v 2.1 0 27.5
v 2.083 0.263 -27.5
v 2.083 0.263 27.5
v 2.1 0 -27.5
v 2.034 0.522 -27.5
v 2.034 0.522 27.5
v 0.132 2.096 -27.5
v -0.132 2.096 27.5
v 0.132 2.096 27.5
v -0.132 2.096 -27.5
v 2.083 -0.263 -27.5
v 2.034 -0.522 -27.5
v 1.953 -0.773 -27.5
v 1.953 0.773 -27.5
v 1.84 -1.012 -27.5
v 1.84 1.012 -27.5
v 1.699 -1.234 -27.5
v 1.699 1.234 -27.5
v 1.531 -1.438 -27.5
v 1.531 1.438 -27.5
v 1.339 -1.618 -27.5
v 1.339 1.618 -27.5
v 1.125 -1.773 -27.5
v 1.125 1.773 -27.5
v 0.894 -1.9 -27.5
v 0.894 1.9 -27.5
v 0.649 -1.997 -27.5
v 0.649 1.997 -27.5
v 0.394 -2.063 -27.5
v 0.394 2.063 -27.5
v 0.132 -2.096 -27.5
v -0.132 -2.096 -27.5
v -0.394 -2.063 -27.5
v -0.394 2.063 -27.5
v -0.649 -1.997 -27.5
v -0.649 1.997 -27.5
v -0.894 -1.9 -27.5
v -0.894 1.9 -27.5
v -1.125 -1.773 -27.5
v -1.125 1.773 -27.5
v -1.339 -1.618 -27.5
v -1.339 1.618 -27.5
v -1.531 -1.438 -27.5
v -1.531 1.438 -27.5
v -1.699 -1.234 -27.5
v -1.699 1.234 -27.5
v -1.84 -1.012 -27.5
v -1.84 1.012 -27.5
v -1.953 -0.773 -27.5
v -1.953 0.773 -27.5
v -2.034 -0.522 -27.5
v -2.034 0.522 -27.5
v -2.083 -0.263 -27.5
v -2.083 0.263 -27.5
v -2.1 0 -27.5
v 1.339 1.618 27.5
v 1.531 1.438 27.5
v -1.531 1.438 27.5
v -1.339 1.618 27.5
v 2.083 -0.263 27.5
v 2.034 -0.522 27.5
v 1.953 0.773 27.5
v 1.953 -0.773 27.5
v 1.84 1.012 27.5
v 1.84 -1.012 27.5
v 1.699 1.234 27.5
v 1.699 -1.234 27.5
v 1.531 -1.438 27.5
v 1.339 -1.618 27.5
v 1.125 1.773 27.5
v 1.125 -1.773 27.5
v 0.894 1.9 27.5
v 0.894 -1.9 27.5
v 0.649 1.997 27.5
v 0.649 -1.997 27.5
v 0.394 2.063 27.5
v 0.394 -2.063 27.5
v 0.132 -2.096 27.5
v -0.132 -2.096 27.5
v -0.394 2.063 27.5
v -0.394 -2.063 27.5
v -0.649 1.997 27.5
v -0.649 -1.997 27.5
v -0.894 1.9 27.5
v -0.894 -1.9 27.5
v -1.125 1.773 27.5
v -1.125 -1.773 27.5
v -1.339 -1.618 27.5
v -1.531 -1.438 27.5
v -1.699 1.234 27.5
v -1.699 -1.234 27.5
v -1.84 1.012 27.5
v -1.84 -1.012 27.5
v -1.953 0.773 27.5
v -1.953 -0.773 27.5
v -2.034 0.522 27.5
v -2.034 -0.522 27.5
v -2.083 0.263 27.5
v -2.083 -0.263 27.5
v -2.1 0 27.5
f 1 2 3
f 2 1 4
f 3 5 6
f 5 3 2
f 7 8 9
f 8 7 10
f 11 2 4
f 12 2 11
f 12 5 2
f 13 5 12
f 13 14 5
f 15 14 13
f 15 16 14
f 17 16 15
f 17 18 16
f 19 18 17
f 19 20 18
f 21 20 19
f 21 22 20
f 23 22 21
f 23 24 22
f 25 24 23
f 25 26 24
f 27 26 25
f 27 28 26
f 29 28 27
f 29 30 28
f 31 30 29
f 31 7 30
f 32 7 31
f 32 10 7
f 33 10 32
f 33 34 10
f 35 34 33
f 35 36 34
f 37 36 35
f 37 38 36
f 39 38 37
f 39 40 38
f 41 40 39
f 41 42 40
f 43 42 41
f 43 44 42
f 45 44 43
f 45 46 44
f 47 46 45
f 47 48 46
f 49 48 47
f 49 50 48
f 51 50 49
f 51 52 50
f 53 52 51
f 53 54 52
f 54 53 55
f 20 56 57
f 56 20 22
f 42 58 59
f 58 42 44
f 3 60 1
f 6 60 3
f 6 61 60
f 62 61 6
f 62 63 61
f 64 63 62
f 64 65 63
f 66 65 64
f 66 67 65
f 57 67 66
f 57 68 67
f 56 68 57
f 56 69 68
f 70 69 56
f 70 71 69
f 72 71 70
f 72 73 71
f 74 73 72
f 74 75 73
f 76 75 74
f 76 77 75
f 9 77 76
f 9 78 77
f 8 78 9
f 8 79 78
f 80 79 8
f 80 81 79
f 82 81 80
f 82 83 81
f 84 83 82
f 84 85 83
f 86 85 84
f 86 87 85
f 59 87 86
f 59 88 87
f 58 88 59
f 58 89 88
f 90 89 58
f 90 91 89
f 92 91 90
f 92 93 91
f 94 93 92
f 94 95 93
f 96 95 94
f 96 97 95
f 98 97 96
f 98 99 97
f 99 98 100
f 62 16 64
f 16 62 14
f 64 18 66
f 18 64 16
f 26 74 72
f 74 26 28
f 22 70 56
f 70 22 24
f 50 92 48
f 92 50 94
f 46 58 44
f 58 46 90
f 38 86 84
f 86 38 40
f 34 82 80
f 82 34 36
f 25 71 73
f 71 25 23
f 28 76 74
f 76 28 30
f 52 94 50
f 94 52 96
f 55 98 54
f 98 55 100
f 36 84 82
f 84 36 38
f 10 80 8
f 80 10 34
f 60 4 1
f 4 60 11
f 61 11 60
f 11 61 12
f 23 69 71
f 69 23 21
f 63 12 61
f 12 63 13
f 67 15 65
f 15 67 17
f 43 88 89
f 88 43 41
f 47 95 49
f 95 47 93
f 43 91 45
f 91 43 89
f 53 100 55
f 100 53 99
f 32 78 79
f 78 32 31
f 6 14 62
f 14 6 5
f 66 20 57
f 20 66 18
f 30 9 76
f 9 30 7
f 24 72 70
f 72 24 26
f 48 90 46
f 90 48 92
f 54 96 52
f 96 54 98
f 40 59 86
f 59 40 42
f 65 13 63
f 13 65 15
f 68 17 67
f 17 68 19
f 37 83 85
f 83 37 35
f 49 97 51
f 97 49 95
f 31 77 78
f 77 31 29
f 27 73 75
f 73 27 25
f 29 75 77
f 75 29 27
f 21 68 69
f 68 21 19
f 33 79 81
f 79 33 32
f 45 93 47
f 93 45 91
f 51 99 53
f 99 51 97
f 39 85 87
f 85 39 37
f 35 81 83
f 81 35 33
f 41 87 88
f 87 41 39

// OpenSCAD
$fn = 50;


difference() {
	union() {
		translate(v = [0, 0, -27.5000000000]) {
			cylinder(h = 55, r = 2.1000000000);
		}
	}
	union() {
		translate(v = [0, 0, -100.0000000000]) {
			cylinder(h = 200, r = 0);
		}
	}
}
